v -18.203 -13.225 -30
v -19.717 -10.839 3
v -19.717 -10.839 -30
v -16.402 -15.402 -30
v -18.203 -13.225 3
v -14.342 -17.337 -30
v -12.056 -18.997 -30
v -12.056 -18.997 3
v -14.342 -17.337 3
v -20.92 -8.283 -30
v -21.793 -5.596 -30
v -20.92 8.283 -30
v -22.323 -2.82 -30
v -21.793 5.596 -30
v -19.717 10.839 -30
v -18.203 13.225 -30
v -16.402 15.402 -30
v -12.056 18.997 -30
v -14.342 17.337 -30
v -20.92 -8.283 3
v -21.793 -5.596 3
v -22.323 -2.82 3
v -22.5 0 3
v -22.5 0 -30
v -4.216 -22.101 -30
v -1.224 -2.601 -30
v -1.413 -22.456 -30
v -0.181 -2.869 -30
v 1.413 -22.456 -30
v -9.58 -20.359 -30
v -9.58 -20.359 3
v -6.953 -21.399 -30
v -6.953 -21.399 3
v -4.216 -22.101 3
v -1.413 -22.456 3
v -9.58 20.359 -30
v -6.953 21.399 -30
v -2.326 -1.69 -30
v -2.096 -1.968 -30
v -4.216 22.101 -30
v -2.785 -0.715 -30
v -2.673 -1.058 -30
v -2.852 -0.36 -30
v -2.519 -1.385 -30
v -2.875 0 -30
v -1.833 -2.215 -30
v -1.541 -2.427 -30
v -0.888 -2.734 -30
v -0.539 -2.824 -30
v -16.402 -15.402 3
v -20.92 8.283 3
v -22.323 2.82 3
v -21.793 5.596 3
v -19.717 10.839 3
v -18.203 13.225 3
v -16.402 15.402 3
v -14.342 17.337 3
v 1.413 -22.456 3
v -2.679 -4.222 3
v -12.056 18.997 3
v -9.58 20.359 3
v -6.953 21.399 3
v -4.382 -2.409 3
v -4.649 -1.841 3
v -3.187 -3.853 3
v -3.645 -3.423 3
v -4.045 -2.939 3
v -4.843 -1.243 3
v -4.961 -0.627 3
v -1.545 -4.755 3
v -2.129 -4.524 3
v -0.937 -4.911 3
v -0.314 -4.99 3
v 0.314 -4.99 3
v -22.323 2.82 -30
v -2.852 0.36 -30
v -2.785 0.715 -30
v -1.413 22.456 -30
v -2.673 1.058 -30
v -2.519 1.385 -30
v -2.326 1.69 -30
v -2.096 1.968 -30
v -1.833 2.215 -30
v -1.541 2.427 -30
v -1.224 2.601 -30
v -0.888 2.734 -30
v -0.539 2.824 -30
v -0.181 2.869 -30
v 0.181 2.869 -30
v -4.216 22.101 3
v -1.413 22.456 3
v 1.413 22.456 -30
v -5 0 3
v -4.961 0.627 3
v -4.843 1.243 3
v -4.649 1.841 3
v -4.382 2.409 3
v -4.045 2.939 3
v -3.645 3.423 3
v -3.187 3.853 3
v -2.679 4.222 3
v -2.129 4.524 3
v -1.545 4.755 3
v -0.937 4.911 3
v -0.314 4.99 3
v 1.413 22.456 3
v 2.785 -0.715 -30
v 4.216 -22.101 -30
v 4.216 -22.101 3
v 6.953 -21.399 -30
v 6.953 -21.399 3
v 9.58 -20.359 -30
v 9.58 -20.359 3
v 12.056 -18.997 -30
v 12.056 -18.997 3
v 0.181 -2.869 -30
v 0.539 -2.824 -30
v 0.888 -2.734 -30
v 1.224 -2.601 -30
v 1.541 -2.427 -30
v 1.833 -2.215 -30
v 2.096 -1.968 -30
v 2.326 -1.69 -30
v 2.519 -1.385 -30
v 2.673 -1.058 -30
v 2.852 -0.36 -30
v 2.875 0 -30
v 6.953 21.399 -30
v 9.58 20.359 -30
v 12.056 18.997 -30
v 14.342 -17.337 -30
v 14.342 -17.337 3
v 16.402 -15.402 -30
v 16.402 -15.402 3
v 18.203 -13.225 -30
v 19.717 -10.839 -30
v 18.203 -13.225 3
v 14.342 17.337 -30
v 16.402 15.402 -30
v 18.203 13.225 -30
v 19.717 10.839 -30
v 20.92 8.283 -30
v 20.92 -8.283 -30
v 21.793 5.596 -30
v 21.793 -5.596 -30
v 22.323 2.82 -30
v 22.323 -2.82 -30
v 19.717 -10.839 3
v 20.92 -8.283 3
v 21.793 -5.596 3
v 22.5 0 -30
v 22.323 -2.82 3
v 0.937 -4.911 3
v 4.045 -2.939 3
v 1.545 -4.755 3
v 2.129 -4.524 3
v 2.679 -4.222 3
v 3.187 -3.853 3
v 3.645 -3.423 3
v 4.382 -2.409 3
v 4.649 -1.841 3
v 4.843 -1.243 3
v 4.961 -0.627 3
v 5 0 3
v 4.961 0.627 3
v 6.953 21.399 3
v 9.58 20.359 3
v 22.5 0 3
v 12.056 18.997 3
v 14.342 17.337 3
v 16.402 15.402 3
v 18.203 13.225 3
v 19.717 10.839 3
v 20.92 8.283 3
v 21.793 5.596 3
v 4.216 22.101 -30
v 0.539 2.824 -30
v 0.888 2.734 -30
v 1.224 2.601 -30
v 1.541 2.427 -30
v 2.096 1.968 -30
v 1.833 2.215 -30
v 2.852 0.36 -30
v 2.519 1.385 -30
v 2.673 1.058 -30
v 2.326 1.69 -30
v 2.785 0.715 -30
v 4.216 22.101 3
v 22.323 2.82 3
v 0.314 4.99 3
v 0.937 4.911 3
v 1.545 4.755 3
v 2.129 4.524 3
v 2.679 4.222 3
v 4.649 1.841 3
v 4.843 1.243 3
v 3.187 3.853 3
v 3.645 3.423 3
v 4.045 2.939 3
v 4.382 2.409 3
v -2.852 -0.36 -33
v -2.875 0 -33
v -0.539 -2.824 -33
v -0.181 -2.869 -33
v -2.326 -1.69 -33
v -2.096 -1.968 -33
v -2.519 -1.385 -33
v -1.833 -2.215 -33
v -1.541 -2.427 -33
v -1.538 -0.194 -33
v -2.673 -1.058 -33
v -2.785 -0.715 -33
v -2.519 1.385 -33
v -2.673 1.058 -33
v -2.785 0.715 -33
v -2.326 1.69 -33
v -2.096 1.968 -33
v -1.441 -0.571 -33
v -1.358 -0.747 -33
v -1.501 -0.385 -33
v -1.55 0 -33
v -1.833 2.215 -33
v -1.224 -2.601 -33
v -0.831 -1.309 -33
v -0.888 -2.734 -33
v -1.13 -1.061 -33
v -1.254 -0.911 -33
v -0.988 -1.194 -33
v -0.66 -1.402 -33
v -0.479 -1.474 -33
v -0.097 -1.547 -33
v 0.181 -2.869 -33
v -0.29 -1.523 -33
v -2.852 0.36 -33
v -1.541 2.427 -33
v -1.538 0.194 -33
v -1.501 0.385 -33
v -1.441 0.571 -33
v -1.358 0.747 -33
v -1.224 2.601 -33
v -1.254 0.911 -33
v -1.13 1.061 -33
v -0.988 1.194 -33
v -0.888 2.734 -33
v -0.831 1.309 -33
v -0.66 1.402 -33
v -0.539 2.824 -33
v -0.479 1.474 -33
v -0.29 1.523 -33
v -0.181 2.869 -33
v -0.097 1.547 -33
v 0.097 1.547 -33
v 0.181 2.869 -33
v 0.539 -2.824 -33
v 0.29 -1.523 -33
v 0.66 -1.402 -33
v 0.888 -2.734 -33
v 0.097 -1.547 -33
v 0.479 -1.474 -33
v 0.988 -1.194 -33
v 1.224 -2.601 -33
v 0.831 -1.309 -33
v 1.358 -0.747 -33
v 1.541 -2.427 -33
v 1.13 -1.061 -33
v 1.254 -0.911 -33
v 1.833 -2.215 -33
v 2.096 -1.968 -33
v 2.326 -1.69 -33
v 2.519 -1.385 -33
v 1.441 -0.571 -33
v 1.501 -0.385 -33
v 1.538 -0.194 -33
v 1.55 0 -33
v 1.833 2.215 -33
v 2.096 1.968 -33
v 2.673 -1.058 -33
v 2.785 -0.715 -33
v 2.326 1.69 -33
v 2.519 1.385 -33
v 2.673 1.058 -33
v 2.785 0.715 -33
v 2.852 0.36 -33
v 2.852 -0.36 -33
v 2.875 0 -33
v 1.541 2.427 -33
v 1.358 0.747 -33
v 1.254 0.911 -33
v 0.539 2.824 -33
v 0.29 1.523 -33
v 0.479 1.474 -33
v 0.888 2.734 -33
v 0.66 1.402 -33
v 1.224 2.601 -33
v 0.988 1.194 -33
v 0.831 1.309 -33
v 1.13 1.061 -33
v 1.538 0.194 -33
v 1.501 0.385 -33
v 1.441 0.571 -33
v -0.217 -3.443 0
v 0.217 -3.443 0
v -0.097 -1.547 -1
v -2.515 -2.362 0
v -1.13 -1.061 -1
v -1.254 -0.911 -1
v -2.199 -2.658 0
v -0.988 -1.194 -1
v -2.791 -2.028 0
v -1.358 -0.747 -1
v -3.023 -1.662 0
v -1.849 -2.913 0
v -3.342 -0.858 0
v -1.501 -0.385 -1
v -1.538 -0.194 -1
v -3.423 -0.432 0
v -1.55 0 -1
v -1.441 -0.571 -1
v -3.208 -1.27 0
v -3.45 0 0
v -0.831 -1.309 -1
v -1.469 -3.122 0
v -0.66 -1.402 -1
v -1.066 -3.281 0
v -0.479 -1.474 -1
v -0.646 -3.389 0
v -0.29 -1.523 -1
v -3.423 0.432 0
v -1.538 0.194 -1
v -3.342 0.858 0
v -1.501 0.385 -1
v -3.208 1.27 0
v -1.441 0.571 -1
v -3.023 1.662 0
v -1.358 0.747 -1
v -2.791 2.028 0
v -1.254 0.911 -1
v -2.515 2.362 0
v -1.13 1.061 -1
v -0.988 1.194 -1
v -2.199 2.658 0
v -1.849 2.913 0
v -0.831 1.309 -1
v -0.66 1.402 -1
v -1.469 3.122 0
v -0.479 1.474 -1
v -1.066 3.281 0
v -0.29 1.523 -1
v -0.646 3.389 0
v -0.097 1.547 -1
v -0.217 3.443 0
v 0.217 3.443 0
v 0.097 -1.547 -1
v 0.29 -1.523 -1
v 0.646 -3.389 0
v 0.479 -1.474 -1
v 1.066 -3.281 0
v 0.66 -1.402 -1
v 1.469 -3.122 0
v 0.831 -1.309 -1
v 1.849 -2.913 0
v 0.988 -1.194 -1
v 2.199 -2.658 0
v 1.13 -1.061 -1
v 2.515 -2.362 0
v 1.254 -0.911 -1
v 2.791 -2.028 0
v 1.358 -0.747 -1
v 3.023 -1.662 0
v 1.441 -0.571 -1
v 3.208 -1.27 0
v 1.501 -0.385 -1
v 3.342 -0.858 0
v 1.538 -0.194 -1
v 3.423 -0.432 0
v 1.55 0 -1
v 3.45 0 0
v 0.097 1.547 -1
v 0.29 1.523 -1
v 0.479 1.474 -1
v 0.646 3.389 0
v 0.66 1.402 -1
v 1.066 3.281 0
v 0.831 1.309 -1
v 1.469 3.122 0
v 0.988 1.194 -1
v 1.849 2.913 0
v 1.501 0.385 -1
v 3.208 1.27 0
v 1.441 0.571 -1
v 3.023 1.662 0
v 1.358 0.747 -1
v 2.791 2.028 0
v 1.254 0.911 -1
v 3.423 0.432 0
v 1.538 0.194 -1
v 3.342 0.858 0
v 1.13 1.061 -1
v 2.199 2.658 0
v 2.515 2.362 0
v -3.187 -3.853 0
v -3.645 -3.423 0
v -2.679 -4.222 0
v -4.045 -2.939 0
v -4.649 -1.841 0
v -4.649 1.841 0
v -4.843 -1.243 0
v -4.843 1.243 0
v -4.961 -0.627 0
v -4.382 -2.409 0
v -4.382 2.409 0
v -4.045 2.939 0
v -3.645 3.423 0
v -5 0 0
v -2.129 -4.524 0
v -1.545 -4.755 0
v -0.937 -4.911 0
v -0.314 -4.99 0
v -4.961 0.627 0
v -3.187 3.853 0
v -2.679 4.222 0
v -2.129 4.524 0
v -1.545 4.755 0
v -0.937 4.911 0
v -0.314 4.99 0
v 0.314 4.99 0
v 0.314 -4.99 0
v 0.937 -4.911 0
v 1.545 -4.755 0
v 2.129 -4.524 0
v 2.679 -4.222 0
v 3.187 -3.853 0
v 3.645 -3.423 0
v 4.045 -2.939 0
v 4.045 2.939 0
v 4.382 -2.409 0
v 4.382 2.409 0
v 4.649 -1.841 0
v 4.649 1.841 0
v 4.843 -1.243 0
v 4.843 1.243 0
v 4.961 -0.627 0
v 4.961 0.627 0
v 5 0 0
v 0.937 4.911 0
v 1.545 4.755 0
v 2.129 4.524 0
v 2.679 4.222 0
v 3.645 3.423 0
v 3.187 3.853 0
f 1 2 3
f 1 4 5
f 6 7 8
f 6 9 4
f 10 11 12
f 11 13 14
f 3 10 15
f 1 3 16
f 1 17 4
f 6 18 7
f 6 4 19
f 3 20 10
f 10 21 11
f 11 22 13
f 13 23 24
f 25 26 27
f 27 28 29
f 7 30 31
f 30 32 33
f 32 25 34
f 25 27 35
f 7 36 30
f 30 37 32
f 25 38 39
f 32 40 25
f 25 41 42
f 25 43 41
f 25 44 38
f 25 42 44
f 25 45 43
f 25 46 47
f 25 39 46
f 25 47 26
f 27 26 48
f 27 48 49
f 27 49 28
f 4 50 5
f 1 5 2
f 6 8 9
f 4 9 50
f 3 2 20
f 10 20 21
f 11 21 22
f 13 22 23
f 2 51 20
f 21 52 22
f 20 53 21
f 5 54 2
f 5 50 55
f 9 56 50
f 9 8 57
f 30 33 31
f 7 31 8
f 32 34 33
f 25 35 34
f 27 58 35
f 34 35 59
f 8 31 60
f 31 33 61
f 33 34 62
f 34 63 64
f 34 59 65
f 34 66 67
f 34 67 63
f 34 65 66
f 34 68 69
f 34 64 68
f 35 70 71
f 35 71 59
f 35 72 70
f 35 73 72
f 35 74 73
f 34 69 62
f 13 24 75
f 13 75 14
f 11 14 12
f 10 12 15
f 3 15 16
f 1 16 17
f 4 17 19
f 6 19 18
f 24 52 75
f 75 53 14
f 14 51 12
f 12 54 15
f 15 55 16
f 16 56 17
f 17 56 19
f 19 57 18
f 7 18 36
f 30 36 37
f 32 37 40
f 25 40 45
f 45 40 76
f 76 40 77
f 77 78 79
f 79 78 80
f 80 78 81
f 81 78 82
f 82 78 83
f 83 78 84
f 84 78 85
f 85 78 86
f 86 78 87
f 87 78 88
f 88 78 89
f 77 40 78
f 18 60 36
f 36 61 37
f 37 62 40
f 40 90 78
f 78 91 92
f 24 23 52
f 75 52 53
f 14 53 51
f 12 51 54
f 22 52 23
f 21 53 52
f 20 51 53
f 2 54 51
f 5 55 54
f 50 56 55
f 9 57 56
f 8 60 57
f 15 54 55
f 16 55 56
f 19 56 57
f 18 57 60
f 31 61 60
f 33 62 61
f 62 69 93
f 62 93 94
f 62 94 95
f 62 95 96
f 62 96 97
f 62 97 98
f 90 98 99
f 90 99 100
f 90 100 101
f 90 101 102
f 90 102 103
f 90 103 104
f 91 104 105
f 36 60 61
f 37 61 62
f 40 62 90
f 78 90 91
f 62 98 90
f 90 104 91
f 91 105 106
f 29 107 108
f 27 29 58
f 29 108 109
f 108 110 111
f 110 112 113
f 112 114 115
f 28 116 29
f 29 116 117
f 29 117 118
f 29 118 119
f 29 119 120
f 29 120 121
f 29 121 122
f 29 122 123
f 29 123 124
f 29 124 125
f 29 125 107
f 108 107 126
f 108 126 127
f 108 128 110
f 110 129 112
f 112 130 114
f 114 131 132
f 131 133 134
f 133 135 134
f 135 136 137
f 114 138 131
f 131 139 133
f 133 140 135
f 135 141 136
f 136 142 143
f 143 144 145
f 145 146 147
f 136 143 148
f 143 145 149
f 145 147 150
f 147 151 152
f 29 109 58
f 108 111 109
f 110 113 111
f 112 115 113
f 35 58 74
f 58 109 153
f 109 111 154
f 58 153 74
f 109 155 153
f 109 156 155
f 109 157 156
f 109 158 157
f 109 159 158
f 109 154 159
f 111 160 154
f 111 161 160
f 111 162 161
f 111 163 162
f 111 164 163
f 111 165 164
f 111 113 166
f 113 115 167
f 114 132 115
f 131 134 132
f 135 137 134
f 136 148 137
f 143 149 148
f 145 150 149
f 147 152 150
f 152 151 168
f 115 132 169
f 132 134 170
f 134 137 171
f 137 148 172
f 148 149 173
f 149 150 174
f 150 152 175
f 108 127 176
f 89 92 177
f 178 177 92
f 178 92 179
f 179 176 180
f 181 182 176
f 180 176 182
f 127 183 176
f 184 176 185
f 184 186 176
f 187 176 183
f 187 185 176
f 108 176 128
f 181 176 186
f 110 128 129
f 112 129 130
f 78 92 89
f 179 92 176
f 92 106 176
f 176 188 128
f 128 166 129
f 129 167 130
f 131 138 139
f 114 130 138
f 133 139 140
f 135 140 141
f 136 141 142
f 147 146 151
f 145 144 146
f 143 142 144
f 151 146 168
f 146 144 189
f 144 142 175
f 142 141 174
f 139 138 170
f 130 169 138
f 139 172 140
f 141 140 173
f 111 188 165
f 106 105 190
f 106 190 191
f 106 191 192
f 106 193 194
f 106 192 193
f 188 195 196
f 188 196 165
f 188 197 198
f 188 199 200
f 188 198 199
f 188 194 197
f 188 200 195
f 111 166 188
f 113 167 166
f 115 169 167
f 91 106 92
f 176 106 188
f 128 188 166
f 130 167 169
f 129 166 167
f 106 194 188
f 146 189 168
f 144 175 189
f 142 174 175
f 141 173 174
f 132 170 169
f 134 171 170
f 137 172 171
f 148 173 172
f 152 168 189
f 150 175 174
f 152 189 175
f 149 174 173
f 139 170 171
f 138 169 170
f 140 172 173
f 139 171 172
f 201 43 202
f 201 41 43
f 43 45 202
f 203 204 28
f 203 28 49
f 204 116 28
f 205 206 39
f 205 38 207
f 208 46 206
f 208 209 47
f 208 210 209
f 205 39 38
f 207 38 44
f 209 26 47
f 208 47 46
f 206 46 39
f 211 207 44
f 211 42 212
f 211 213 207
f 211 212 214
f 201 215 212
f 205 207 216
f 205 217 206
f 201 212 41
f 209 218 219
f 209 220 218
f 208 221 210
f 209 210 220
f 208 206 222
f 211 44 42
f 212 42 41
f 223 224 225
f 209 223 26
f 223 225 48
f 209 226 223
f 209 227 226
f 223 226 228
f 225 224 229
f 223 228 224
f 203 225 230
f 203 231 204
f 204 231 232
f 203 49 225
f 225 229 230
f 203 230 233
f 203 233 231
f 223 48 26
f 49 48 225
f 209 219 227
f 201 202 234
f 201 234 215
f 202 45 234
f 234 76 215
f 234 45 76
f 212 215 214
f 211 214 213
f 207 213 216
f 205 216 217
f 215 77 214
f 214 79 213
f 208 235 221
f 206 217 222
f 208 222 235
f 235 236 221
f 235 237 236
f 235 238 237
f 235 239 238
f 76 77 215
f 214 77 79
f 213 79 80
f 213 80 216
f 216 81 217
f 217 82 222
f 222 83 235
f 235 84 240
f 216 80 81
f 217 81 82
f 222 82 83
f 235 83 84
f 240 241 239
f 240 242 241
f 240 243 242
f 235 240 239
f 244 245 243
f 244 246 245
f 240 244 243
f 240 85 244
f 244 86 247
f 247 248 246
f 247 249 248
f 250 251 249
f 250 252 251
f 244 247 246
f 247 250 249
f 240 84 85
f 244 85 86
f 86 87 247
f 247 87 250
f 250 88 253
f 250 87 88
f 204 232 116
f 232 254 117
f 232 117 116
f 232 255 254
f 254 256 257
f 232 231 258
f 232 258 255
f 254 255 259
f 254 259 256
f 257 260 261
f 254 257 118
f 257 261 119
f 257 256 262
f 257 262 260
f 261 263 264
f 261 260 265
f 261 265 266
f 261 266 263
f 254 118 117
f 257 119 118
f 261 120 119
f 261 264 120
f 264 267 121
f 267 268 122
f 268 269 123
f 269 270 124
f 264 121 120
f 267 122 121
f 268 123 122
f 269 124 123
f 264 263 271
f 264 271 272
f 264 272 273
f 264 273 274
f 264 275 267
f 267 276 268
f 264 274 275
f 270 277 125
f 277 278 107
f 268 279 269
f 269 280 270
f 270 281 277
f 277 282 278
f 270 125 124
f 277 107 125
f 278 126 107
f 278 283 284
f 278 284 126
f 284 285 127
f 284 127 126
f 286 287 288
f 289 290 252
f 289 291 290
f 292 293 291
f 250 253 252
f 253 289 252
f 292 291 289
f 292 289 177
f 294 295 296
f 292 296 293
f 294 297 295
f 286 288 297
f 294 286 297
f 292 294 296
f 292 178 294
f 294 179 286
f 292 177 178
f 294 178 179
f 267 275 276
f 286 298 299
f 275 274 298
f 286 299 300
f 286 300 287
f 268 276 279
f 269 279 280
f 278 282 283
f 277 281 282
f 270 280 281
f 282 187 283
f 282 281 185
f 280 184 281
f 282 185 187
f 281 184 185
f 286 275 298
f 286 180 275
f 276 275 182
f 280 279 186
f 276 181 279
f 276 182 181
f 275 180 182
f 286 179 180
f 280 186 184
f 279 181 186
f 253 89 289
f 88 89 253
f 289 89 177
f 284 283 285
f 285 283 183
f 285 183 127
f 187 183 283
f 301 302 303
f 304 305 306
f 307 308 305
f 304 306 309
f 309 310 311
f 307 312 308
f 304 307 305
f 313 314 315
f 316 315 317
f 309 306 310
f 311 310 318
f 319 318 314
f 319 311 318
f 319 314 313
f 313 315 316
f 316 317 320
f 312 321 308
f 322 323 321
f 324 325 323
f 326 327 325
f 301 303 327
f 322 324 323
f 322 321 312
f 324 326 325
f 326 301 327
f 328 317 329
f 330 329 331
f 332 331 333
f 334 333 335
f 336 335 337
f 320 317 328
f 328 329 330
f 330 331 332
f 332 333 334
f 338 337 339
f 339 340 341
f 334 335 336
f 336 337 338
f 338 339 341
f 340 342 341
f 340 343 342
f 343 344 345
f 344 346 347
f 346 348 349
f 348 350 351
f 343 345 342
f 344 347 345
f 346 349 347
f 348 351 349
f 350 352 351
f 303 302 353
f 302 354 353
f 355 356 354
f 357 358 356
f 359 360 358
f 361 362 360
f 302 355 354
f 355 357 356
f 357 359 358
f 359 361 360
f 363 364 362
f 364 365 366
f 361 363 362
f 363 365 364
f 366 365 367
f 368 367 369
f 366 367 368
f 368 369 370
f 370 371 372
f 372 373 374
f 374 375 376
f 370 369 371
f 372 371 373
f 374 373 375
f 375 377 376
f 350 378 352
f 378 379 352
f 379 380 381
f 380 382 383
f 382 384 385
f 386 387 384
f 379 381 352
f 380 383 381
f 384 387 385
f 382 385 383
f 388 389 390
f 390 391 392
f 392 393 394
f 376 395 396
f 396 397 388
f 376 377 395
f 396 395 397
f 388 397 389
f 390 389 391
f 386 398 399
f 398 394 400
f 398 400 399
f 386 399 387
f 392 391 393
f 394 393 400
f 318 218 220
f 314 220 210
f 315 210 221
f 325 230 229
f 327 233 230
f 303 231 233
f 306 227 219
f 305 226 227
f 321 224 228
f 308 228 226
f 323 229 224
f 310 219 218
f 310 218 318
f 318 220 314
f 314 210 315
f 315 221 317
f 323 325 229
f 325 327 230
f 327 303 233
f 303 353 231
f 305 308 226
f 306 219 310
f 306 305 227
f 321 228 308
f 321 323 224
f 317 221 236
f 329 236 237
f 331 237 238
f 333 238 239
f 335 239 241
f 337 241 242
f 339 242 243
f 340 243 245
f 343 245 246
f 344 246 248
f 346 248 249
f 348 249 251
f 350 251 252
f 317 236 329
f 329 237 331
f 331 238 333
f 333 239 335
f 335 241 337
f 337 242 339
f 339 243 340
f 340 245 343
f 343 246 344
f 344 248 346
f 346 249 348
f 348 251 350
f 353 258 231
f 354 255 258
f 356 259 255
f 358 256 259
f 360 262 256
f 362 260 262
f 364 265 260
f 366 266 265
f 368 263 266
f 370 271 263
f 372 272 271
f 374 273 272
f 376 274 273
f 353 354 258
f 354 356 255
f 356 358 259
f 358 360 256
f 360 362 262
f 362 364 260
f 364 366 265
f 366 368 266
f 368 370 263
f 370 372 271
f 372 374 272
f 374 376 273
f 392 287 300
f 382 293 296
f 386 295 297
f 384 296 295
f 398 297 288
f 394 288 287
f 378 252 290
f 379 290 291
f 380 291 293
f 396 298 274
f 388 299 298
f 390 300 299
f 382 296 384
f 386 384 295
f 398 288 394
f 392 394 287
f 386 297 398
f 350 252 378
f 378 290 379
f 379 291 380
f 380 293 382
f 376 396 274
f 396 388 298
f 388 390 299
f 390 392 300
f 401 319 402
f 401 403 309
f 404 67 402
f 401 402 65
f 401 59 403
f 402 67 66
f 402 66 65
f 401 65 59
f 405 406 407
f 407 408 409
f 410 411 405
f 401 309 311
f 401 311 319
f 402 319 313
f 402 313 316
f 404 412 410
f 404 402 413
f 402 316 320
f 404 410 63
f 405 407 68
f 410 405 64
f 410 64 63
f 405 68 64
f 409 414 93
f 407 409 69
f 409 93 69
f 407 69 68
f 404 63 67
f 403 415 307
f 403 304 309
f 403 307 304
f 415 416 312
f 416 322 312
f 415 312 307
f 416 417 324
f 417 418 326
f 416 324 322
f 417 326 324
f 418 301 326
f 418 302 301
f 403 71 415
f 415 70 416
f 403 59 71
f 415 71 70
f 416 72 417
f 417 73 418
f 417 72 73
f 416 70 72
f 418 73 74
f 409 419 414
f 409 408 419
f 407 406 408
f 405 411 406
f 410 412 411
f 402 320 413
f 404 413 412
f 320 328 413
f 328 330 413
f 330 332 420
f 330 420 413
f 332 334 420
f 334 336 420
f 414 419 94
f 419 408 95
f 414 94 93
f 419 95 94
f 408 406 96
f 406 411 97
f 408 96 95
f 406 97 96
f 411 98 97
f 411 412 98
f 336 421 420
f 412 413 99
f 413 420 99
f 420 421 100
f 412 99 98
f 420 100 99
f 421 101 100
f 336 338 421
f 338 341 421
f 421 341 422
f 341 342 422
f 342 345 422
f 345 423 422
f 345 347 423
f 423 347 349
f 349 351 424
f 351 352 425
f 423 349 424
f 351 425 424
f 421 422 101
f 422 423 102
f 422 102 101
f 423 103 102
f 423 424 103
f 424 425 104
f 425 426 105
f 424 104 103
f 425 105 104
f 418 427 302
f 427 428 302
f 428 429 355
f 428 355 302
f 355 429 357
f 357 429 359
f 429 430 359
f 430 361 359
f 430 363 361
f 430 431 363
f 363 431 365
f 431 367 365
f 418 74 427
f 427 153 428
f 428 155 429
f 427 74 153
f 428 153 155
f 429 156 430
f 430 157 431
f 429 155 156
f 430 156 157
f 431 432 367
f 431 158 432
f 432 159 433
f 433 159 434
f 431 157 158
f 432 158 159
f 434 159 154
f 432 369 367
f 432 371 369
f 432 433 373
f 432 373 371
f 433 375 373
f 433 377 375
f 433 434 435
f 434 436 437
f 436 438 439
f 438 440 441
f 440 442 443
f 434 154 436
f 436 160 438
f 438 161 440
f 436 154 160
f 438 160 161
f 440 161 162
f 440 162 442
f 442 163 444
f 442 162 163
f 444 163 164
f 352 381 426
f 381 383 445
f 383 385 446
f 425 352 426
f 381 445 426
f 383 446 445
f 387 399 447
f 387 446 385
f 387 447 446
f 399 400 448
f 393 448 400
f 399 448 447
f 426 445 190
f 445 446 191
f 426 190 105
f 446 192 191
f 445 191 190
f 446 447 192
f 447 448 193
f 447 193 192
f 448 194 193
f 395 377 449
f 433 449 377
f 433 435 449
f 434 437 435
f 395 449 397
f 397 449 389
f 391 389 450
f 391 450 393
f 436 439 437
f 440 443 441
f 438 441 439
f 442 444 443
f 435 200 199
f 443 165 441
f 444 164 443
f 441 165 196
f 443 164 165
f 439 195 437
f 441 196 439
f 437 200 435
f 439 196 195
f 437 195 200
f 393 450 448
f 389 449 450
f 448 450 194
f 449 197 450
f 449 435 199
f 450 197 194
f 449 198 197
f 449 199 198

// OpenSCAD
$fn = 50;

difference() {
	union() {
		translate(v = [0, 0, -30.0]) {
			cylinder(h = 33, r = 22.5);
		}
		#translate(v = [0, 0, -33.0]) {
			cylinder(h = 33, r = 2.875);
		}
	}
	union() {
		translate(v = [0, 0, 0]) {
			rotate(a = [0, 0, 0]) {
				difference() {
					union() {
						translate(v = [0, 0, -33.0]) {
							cylinder(h = 33, r = 1.25);
						}
						translate(v = [0, 0, -1.0]) {
							cylinder(h = 1.0, r1 = 1.55, r2 = 3.45);
						}
						translate(v = [0, 0, -33.0]) {
							cylinder(h = 33, r = 1.55);
						}
						translate(v = [0, 0, -33.0]) {
							cylinder(h = 33, r = 1.25);
						}
					}
					union();
				}
			}
		}
		#cylinder(h = 3, r = 5.0);
	}
}
